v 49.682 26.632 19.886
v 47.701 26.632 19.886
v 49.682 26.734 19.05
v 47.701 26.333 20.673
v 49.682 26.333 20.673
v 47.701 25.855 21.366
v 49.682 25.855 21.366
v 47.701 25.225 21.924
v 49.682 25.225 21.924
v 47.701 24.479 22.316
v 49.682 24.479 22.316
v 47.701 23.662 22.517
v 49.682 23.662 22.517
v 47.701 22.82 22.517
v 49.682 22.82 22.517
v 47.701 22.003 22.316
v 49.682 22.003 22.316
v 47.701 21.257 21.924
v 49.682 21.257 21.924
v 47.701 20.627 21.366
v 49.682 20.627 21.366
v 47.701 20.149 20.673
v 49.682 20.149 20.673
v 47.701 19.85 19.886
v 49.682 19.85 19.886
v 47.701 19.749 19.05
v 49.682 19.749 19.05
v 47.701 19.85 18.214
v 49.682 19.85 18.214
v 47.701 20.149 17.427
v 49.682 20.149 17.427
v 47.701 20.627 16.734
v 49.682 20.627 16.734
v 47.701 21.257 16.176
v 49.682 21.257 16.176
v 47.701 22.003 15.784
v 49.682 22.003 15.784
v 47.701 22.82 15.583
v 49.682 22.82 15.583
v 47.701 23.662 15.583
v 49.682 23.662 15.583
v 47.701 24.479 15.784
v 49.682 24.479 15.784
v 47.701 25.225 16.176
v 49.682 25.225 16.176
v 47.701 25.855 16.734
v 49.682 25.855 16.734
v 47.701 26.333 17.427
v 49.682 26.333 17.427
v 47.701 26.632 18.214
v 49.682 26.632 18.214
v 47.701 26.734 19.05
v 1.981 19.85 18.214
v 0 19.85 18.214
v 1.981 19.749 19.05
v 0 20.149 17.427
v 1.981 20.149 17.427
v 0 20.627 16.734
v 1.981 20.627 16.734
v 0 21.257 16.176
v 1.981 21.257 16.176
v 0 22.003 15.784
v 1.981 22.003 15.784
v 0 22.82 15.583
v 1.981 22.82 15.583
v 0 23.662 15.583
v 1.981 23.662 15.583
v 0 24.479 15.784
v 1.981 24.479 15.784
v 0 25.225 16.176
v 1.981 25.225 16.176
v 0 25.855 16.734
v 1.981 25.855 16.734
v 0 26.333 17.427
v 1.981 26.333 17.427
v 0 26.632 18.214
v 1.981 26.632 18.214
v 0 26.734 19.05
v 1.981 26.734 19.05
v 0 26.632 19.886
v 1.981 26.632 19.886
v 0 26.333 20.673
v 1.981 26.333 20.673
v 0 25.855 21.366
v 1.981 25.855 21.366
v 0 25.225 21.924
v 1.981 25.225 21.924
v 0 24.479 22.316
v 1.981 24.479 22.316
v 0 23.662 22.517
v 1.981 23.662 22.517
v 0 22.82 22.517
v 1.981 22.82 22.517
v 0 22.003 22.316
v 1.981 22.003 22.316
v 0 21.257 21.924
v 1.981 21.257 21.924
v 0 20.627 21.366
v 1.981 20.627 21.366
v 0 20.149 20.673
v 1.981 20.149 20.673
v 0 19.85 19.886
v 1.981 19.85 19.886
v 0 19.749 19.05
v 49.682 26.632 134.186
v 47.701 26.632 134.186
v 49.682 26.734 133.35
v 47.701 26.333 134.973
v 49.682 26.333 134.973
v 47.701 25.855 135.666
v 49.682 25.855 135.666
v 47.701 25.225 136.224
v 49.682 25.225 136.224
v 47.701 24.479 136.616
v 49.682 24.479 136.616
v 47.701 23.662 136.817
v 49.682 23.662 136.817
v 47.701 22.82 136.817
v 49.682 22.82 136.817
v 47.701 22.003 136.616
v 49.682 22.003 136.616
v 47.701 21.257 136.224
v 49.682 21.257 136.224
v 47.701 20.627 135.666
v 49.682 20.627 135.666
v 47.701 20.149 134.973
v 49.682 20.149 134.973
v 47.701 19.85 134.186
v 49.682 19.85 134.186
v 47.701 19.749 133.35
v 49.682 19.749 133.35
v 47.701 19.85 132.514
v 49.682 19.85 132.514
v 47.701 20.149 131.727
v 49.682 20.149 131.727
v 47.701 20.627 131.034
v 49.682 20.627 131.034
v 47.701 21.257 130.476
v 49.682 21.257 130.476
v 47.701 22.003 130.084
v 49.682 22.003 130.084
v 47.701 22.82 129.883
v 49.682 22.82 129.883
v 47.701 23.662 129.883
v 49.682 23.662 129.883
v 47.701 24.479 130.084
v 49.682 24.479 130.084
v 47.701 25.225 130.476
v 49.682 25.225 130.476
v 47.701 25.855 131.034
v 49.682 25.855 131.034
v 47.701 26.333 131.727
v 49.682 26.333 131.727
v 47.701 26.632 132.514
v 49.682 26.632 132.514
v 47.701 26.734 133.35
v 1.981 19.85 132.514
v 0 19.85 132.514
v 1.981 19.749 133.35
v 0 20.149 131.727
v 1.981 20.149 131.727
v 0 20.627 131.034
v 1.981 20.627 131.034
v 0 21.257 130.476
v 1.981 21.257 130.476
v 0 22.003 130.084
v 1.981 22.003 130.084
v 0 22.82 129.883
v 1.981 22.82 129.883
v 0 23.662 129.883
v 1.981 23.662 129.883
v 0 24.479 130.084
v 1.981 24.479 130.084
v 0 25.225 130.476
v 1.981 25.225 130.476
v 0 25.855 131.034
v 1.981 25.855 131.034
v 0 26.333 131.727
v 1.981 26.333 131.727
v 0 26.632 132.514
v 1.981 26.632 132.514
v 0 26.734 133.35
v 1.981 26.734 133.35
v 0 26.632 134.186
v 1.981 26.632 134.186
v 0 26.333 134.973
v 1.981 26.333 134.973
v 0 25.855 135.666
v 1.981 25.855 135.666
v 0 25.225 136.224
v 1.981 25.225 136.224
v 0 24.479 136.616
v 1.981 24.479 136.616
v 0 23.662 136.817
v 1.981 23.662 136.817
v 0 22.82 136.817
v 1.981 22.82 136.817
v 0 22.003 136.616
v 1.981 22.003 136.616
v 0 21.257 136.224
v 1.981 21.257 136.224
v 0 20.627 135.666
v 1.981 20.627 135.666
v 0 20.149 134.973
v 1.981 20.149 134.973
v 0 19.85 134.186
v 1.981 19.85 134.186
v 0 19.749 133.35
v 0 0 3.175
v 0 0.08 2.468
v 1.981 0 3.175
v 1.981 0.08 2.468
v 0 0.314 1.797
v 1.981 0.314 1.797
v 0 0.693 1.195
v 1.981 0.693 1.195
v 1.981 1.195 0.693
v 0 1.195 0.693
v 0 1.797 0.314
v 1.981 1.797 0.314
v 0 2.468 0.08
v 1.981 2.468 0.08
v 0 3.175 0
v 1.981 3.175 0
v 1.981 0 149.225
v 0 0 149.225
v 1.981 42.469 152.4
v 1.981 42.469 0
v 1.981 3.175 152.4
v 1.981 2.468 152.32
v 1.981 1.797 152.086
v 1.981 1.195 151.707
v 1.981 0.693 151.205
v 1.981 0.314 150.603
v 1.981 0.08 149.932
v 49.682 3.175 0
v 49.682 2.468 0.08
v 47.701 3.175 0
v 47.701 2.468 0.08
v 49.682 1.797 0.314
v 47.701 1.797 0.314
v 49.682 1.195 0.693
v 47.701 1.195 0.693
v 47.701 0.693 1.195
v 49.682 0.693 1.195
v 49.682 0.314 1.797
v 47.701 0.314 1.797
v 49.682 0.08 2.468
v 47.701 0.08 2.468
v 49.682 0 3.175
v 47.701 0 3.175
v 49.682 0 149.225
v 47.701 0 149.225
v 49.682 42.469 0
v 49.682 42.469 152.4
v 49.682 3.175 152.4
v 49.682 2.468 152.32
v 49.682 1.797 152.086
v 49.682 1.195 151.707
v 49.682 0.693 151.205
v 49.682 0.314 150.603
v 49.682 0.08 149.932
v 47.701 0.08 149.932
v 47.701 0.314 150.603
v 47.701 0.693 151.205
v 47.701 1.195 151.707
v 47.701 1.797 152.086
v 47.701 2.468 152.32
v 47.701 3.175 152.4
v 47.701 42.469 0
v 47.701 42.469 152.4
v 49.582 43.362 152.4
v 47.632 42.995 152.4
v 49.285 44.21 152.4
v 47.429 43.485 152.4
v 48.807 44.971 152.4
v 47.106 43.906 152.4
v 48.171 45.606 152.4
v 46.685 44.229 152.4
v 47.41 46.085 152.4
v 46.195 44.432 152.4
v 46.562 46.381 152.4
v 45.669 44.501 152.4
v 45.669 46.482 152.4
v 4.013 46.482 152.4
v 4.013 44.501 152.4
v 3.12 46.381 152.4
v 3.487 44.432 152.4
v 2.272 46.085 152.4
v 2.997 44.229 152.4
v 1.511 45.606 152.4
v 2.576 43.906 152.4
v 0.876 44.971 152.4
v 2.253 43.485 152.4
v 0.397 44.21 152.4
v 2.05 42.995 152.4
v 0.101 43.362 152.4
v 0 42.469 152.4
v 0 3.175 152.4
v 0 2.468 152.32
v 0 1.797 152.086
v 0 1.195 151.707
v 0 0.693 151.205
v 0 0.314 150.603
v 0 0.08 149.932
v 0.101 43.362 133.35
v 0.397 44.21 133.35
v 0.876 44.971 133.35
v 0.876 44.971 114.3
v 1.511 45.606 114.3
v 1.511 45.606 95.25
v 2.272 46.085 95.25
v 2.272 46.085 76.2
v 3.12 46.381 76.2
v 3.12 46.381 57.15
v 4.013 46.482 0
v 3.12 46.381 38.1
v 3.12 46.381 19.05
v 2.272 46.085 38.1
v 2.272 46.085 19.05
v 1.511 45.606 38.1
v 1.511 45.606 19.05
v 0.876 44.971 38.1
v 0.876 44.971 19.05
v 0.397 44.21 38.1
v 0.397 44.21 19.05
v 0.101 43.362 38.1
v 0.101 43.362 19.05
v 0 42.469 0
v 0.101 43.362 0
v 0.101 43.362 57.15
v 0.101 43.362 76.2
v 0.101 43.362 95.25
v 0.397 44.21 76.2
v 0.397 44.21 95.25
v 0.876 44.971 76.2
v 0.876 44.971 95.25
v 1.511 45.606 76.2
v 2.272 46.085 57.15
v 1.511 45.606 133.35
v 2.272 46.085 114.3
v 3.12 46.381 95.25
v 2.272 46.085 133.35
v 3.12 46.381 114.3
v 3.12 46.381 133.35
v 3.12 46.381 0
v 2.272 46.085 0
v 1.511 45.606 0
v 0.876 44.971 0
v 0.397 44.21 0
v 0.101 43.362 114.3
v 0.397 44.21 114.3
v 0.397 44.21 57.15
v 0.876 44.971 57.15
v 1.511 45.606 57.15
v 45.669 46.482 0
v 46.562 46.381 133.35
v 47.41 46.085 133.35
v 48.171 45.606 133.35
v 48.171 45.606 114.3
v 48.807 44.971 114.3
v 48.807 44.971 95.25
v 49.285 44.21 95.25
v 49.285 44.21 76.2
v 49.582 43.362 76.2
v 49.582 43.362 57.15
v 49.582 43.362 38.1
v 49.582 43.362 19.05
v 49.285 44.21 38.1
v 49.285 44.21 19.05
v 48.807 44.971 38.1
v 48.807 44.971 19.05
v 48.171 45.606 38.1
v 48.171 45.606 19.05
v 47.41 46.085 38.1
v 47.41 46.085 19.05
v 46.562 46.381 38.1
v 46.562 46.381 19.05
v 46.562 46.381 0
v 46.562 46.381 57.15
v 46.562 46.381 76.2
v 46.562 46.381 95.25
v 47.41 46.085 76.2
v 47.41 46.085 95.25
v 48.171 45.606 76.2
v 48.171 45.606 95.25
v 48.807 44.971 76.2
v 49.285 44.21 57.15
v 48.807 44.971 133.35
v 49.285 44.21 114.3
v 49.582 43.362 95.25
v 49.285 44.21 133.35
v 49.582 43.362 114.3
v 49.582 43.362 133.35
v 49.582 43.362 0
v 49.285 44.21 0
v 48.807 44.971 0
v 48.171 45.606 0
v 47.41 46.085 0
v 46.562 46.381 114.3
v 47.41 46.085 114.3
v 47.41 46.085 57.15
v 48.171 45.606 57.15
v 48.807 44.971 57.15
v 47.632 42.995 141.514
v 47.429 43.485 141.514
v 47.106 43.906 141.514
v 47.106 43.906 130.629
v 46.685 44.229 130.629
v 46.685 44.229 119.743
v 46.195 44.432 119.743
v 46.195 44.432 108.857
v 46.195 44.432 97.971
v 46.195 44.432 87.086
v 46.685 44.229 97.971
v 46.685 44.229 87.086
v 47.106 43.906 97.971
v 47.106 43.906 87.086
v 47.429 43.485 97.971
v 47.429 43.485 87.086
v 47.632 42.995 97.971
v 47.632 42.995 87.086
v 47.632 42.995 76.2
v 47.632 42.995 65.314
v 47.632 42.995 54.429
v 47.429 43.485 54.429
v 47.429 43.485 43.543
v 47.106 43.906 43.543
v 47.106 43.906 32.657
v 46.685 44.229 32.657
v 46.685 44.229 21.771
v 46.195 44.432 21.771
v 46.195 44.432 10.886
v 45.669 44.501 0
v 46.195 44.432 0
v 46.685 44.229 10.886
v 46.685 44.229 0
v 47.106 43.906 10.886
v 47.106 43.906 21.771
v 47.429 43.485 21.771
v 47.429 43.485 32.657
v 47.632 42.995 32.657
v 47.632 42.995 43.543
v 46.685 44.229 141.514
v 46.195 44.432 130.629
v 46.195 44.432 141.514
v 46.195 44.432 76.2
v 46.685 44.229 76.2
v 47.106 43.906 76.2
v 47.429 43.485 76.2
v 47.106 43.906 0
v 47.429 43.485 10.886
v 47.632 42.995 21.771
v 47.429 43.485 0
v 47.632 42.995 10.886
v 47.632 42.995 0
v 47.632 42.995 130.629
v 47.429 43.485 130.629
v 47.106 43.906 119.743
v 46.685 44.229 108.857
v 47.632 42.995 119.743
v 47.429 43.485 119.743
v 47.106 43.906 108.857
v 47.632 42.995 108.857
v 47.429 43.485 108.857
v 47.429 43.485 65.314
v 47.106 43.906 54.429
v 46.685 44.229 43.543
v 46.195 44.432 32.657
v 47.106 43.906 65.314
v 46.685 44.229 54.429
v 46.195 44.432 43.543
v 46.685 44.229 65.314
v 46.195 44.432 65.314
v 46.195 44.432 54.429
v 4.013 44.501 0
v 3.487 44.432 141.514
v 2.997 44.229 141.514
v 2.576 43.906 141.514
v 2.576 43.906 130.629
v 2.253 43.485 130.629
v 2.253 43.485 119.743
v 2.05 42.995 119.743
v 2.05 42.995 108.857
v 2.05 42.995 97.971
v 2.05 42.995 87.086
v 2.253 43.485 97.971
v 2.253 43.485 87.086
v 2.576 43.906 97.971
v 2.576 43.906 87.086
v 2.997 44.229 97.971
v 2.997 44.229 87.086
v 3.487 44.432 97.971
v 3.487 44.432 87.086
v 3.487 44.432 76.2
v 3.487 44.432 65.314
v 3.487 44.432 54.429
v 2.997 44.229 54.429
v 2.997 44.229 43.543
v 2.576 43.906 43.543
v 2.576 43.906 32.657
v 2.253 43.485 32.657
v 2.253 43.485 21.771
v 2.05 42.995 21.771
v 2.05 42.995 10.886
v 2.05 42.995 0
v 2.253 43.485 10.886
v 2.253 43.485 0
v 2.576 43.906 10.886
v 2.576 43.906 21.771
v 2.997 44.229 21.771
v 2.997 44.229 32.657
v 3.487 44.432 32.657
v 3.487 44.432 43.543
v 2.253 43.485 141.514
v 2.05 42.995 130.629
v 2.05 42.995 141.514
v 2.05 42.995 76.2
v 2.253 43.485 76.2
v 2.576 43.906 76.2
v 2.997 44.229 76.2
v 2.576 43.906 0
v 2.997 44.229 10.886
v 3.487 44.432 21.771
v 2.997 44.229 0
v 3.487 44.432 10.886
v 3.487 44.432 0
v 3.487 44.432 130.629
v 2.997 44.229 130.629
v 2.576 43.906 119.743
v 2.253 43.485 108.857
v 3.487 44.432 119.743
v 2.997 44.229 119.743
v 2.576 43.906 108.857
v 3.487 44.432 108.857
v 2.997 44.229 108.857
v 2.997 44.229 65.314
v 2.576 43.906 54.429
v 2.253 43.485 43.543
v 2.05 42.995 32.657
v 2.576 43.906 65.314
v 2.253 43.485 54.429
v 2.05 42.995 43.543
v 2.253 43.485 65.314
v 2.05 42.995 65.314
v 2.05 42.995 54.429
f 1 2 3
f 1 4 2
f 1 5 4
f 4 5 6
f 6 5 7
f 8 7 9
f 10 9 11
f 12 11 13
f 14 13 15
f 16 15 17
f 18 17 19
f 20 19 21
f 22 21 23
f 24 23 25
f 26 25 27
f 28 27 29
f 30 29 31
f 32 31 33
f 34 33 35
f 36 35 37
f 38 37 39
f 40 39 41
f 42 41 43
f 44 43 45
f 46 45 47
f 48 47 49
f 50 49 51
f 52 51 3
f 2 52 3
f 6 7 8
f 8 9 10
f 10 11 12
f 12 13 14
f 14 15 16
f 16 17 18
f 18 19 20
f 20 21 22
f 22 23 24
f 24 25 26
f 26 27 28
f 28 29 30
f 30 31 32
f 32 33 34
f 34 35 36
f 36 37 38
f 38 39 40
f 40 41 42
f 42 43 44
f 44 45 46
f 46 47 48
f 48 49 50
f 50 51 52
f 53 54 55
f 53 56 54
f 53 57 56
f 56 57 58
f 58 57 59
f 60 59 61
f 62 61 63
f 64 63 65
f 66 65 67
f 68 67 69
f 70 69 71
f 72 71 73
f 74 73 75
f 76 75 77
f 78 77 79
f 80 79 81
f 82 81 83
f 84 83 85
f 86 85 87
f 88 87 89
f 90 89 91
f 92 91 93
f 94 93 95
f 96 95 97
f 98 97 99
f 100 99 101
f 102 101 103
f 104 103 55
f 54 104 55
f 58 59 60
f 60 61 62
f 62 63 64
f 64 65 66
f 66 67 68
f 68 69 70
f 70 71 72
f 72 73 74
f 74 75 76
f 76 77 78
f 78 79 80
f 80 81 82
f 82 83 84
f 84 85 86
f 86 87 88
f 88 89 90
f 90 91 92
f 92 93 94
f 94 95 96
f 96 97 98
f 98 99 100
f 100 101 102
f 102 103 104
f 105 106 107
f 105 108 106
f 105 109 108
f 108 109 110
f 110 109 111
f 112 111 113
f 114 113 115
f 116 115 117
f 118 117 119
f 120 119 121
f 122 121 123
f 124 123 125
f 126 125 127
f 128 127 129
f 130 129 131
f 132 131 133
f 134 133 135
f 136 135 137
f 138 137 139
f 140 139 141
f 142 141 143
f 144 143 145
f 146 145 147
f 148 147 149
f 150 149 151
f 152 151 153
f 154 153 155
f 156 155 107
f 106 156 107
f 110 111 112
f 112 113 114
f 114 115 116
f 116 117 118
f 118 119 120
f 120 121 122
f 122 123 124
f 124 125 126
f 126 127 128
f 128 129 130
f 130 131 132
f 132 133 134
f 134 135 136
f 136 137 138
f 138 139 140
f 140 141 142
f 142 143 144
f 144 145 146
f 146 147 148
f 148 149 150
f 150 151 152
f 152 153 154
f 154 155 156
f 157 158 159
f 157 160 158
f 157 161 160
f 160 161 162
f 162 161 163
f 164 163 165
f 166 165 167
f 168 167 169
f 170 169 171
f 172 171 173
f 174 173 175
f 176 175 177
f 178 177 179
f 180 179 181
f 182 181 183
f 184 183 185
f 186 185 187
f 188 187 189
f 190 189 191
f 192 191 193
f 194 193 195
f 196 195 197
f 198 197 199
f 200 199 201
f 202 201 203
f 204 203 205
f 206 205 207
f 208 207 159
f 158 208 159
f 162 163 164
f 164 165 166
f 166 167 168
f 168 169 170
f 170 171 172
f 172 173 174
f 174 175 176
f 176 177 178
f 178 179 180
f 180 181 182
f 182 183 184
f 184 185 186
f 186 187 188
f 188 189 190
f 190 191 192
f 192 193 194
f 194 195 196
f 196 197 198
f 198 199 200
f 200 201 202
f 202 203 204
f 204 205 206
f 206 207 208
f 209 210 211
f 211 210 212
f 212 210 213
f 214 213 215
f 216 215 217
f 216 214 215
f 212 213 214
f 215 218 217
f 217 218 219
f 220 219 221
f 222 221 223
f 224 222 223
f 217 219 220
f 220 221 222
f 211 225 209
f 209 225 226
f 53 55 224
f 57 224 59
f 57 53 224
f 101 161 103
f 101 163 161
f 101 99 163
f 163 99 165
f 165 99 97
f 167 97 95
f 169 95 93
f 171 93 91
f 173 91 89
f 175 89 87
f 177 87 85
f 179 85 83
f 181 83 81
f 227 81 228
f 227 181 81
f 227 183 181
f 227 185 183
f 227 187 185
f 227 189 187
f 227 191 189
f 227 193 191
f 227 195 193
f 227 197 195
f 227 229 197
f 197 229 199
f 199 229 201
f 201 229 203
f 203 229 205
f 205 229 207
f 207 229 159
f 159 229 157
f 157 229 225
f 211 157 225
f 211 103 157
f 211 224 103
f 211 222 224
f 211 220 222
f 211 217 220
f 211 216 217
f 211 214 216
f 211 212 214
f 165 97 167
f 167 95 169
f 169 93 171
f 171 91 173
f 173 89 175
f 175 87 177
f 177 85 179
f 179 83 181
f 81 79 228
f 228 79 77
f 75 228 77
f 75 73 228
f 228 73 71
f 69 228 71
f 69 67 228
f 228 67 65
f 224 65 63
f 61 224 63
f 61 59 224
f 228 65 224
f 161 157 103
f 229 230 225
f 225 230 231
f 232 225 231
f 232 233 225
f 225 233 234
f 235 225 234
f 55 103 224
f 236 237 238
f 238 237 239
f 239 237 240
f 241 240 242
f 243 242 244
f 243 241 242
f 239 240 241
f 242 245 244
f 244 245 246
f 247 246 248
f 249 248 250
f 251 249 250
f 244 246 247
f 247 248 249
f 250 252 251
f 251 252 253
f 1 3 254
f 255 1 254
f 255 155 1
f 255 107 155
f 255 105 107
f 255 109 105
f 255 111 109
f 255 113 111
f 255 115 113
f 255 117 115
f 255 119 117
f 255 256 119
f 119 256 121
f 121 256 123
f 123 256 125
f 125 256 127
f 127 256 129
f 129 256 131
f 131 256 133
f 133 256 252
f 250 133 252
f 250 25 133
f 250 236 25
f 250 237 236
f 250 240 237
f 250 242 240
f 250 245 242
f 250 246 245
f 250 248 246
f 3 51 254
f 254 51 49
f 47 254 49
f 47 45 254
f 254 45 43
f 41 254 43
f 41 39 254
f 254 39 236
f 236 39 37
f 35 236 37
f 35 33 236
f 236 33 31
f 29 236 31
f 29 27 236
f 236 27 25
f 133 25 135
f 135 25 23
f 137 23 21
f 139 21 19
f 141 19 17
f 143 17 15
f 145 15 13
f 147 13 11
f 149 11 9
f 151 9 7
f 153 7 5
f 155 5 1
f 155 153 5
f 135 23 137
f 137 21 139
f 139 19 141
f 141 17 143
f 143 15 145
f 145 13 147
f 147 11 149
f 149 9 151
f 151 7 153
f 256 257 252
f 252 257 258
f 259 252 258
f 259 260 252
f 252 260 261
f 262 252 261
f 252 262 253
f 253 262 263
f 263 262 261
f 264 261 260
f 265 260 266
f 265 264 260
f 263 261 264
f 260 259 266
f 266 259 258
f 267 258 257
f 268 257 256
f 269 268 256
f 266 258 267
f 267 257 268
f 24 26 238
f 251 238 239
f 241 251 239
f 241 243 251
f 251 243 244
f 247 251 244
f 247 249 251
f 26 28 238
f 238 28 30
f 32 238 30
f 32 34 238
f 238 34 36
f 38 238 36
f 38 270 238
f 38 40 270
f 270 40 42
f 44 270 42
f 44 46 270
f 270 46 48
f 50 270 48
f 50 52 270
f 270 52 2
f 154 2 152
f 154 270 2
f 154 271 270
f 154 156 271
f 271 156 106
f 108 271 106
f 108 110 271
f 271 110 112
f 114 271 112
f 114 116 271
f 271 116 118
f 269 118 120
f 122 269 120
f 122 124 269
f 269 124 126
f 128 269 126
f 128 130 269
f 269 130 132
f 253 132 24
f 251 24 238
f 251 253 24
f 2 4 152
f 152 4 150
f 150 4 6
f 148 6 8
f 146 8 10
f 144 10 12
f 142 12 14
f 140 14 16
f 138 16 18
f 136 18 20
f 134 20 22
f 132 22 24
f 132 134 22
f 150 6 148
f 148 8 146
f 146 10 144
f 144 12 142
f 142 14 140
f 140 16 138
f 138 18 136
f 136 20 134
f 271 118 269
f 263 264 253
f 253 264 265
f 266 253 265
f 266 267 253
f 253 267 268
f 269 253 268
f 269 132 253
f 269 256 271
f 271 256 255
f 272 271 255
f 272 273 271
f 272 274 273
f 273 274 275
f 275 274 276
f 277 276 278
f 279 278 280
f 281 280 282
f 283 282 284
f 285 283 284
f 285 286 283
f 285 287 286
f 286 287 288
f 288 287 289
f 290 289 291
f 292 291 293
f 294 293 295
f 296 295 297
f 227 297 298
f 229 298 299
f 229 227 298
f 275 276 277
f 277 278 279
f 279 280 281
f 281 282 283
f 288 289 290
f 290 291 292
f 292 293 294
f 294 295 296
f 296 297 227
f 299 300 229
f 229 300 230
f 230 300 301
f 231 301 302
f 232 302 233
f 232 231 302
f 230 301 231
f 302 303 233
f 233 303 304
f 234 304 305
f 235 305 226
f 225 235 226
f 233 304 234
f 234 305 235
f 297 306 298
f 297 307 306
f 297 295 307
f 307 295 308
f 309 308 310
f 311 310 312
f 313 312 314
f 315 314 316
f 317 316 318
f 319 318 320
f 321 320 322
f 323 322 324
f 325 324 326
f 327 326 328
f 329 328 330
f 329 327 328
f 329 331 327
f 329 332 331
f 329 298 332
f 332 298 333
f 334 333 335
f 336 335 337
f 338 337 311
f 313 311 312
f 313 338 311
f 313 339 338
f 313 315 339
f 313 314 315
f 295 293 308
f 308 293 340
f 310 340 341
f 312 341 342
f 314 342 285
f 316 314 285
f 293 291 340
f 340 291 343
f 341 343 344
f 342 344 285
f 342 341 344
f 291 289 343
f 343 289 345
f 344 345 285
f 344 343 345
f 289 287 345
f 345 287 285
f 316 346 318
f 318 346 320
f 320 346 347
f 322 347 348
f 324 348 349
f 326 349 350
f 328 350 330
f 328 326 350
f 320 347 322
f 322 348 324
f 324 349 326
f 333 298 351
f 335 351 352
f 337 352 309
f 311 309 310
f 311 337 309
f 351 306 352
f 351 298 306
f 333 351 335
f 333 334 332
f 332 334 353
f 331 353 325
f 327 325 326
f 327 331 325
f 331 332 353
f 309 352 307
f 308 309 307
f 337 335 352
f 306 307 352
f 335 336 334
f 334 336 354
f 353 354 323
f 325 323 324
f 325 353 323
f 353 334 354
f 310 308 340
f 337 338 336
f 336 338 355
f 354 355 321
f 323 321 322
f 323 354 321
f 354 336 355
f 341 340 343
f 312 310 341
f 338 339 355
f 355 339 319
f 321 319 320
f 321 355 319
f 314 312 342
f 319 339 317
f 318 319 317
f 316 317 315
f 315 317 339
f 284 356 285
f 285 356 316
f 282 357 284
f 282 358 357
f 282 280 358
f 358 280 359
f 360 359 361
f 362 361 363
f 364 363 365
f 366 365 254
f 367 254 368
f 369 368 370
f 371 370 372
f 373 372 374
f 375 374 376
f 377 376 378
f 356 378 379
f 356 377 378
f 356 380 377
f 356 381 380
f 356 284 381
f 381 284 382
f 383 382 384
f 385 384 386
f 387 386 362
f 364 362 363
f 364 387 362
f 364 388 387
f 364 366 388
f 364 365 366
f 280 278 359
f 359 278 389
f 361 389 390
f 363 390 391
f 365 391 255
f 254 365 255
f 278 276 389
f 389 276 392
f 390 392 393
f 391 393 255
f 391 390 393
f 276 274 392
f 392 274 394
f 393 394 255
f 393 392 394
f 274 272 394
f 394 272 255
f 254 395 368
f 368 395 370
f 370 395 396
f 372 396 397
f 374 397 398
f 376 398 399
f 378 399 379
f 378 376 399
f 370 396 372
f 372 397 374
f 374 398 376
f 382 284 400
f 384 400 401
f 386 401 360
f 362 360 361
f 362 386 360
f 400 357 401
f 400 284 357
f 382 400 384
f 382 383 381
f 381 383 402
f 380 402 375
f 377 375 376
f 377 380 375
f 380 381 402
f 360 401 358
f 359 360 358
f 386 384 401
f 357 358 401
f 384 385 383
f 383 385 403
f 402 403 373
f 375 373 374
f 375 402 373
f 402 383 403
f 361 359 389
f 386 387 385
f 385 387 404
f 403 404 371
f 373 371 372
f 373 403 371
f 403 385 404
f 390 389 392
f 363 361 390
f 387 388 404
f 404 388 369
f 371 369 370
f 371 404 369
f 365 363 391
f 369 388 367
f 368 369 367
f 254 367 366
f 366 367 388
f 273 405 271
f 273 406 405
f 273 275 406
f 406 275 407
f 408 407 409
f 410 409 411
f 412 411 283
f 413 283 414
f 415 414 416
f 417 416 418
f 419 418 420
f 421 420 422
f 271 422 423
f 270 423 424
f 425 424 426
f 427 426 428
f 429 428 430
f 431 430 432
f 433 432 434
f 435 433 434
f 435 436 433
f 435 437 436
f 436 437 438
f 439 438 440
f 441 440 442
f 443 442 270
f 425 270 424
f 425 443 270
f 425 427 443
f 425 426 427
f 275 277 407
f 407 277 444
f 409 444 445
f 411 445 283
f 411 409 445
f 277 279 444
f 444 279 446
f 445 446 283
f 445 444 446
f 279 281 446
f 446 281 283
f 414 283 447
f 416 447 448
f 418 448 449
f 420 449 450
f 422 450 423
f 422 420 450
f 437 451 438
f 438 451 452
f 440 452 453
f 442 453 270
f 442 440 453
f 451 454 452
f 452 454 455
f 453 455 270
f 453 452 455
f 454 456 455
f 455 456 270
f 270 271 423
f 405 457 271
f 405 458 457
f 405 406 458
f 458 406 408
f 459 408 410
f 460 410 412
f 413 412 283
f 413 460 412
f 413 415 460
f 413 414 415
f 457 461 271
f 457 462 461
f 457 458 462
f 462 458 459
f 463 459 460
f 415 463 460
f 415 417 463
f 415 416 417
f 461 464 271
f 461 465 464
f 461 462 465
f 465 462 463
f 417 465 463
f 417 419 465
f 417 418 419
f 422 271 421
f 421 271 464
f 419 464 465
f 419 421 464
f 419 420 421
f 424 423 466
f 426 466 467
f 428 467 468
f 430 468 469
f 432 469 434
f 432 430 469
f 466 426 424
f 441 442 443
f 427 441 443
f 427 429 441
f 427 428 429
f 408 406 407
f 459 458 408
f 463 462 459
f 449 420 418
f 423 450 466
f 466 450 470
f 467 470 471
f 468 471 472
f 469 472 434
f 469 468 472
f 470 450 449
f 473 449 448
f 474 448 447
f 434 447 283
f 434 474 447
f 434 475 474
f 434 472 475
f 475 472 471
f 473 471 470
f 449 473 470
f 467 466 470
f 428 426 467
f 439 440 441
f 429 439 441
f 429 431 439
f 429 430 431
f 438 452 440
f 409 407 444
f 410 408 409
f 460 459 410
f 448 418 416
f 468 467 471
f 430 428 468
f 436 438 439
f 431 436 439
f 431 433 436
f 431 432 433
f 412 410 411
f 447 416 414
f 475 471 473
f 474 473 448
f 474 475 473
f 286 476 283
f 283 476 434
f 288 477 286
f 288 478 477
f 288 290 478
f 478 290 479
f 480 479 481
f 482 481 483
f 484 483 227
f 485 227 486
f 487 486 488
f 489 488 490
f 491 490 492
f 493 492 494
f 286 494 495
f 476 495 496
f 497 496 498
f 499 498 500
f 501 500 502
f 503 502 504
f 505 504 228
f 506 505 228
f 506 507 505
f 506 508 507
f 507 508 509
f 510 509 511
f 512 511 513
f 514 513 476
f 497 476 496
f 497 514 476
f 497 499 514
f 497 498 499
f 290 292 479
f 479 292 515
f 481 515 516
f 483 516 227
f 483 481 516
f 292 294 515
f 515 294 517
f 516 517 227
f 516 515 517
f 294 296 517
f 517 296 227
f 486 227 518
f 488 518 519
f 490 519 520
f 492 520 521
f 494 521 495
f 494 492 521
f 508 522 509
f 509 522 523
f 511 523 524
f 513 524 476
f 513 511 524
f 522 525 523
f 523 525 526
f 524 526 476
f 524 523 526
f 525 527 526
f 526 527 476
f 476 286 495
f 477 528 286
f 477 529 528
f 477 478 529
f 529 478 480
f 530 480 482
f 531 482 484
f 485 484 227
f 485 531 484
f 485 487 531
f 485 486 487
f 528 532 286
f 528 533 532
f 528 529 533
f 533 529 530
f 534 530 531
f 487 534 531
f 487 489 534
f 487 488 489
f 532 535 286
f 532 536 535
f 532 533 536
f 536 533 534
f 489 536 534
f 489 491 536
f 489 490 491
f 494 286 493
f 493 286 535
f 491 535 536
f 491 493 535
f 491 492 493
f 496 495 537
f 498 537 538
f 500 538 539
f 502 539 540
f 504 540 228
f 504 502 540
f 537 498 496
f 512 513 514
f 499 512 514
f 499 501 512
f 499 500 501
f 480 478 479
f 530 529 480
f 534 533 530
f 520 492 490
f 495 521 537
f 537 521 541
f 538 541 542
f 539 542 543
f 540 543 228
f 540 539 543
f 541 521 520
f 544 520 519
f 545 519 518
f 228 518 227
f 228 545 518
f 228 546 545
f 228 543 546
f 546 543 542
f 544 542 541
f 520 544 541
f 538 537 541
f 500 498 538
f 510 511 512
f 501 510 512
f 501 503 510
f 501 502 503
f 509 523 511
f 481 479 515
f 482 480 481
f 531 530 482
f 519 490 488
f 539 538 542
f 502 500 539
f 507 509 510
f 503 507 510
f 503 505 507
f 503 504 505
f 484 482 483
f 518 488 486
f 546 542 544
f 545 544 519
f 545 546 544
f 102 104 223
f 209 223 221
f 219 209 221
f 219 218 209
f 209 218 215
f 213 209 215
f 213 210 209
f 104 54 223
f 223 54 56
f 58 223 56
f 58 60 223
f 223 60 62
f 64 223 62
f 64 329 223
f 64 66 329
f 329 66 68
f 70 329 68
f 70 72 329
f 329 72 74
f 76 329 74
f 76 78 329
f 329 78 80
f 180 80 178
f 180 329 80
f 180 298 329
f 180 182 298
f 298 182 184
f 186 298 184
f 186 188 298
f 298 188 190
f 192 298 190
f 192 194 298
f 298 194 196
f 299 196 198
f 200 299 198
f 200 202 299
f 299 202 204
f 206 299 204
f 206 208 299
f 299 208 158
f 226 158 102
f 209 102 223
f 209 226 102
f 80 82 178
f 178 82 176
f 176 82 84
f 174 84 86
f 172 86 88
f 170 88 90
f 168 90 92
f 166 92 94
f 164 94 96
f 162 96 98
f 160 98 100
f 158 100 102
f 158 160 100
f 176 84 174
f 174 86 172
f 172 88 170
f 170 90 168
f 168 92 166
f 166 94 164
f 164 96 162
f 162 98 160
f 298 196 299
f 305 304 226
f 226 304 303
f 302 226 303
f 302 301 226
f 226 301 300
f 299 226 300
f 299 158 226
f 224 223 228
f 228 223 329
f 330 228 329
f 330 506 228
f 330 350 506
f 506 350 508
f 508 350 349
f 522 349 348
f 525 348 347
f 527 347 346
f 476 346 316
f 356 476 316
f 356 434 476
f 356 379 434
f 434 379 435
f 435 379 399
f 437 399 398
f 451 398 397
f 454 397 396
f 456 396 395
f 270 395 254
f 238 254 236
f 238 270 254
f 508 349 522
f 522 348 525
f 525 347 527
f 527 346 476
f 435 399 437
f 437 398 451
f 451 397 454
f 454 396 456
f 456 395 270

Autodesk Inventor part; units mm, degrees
ref_plane "YZ Plane" through (0, 0, 0) normal (1, 0, 0) x (0, 1, 0)
ref_plane "XZ Plane" through (0, 0, 0) normal (0, 1, 0) x (-1, 0, 0)
ref_plane "XY Plane" through (0, 0, 0) normal (0, 0, 1) x (1, 0, 0)
sketch "Sketch1" plane through (0, 0, 0) normal (0, 0, 1) x (1, 0, 0)
  line L0 (0, 0) -> (0, 42.4688)
  line L1 (4.0132, 46.482) -> (45.6692, 46.482)
  line L2 (49.6824, 42.4688) -> (49.6824, 0)
  arc A0 (4.0132, 46.482) -> (0, 42.4688) centre (4.0132, 42.4688) ccw
  arc A1 (49.6824, 42.4688) -> (45.6692, 46.482) centre (45.6692, 42.4688) ccw
  line L3 (47.7012, 0) -> (47.7012, 42.4688)
  arc A2 (47.7012, 42.4688) -> (45.6692, 44.5008) centre (45.6692, 42.4688) ccw
  line L4 (45.6692, 44.5008) -> (4.0132, 44.5008)
  arc A3 (4.0132, 44.5008) -> (1.9812, 42.4688) centre (4.0132, 42.4688) ccw
  line L5 (1.9812, 42.4688) -> (1.9812, 0)
  line L6 (0, 0) -> (1.9812, 0)
  line L7 (47.7012, 0) -> (49.6824, 0)
  dimension "d1" = 1.9812
  dimension "d3" = 46.482
  dimension "d6" = 45.72
  dimension "d7" = 2.032
extrude "Extrusion1" add sketch "Sketch1" along normal blind 152.4
fillet "Fillet1" radius 3.175 4 edges at (0.9906, 0, 152.4) (48.6918, 0, 152.4) (48.6918, 0, 0) (0.9906, 0, 0)
hole "Hole1" at (49.6824, 23.241, 133.35) direction (-1, 0, 0) diameter 6.985 end through all
pattern_linear "Rectangular Pattern1" count 2 spacing 114.3 along (0, 0, -1) of "Hole1"
properties part number "GE-12052_modified"
